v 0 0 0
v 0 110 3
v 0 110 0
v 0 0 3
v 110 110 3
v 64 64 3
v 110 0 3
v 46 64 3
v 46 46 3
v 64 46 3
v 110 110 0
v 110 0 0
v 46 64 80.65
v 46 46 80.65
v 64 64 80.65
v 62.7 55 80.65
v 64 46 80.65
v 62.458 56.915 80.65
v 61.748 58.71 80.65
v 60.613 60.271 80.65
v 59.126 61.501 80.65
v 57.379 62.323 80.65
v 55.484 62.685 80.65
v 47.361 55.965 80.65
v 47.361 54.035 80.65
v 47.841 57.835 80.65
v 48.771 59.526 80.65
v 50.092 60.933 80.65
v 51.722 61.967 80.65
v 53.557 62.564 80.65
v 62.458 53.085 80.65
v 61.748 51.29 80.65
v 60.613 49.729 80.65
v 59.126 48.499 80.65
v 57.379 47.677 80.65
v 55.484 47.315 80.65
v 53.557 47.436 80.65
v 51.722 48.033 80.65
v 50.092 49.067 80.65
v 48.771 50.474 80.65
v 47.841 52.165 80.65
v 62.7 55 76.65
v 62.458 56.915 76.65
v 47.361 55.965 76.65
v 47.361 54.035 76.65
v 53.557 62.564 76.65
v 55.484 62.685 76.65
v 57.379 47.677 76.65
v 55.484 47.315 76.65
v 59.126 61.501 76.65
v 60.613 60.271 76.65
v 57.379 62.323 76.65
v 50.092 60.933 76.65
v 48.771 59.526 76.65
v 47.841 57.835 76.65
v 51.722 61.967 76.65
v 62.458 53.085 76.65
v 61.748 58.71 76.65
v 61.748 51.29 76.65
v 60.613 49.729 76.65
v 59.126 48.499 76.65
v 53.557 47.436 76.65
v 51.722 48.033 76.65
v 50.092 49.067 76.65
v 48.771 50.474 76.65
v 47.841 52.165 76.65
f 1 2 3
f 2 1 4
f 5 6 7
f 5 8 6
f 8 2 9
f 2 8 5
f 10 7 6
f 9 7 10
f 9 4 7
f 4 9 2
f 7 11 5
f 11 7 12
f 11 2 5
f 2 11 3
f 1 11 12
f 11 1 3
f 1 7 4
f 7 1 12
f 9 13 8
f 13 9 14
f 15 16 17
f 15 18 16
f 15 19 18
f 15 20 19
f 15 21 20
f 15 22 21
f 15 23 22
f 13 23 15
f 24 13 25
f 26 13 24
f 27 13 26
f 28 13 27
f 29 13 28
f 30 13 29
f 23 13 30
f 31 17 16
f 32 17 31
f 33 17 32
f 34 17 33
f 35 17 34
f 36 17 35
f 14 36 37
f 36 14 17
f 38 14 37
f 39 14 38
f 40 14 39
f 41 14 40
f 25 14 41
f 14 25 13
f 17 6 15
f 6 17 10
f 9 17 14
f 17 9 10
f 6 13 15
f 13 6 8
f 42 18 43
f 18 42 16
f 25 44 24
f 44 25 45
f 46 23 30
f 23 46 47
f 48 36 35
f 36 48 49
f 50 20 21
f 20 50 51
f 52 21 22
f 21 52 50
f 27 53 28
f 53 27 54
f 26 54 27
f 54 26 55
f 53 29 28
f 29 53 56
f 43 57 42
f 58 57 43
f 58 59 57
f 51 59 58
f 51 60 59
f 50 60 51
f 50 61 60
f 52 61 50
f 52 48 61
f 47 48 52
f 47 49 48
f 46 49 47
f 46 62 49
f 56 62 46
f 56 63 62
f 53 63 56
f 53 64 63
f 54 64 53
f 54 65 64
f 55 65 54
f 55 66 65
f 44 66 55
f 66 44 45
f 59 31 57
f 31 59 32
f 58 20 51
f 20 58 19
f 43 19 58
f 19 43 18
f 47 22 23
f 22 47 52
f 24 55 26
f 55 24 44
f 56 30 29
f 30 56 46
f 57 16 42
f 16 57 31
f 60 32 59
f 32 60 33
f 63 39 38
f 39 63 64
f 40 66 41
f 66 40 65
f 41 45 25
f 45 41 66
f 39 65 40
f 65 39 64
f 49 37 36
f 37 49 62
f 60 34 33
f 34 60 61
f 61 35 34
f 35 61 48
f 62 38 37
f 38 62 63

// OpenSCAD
// file: SquarePileLib.scad
module LeftPile(wallThickness, totalHeight, singlePileHeight, singlePileWidth, singlePileLength, pileCount){
//    15.05 by 14.95 by 2.15
    pileHeight = (pileCount * singlePileHeight) + .5;
    openingSize = singlePileWidth * .75;
    blockerSize = (singlePileLength - openingSize) / 2;
    
    translate([wallThickness, wallThickness, totalHeight - pileHeight])
        cube([singlePileLength, singlePileWidth, pileHeight]);
    translate([-.00001, wallThickness + (blockerSize), 0])
        cube([wallThickness + openingSize, openingSize, totalHeight]);
}

module RightPile(wallThickness, totalHeight, singlePileHeight, singlePileWidth, singlePileLength, pileCount){
    translate([0, wallThickness + wallThickness + singlePileWidth, 0])
        rotate([0, 0, 180])
            LeftPile(wallThickness, totalHeight, singlePileHeight, singlePileWidth, singlePileLength, pileCount);
}

module BottomPile(wallThickness, totalHeight, singlePileHeight, singlePileWidth, singlePileLength, pileCount){
    translate([wallThickness + wallThickness + singlePileWidth, 0, 0])
        rotate([0, 0, 90])
            LeftPile(wallThickness, totalHeight, singlePileHeight, singlePileWidth, singlePileLength, pileCount);
}

module TopPile(wallThickness, totalHeight, singlePileHeight, singlePileWidth, singlePileLength, pileCount){
//    translate([
//        wallThickness + wallThickness + singlePileWidth,
//        wallThickness + wallThickness + singlePileWidth,
//        0])
        rotate([0, 0, 270])
            LeftPile(wallThickness, totalHeight, singlePileHeight, singlePileWidth, singlePileLength, pileCount);
}
// file: ColonistsBuildingsLib.scad
include<SquarePileLib.scad>
//25.82 by 32.82 by 2.15
singleBuildingPileHeight = 2.15;
singleBuildingPileWidth = 25.82 + 1.5;
singleBuildingPileLength = 32.82 + 1.5;

module LeftBuildingPile(wallThickness, totalHeight, buildingPileCount){
    LeftPile(
        wallThickness,
        totalHeight,
        singleBuildingPileHeight,
        singleBuildingPileWidth,
        singleBuildingPileLength,
        buildingPileCount);
}

module RightBuildingPile(wallThickness, totalHeight, buildingPileCount){
    RightPile(
        wallThickness,
        totalHeight,
        singleBuildingPileHeight,
        singleBuildingPileWidth,
        singleBuildingPileLength,
        buildingPileCount);
}

module BottomBuildingPile(wallThickness, totalHeight, buildingPileCount){
    BottomPile(
        wallThickness,
        totalHeight,
        singleBuildingPileHeight,
        singleBuildingPileWidth,
        singleBuildingPileLength,
        buildingPileCount);
}

module TopBuildingPile(wallThickness, totalHeight, buildingPileCount){
    TopPile(
        wallThickness,
        totalHeight,
        singleBuildingPileHeight,
        singleBuildingPileWidth,
        singleBuildingPileLength,
        buildingPileCount);
}

function buildingPileHeight(buildingPileCount) =
    (buildingPileCount * singleBuildingPileHeight) + .5;
// main file
include<ColonistsBuildingsLib.scad>

length = 110;
width = 110;

height = 3;


magnetHoleWidth = 19;
floorThickness = 3;
maxBuildingsPerStack1 = 13;
maxBuildingsPerStack2 = 10;
maxBuildingsPerStack3 = 8;
singleLayerHeight1 = buildingPileHeight(maxBuildingsPerStack1) + floorThickness;
singleLayerHeight2 = buildingPileHeight(maxBuildingsPerStack2) + floorThickness;
singleLayerHeight3 = buildingPileHeight(maxBuildingsPerStack3) + floorThickness;
pillarHeight = (singleLayerHeight1 + singleLayerHeight2 + singleLayerHeight3)+ .5 + height;
echo (pillarHeight);

//Based on magnet size:
pillarSideLength = 18;
pillarSideOffset = .5;

magnetBaseInnerDiameter = 15.4;
magnetHeight = 4.0;

spaceBetweenCircles = 2;


difference() {
union(){
    cube([length, width, height]);


//----------------------------------


            
//---------------------------------------------------------------------
    
          

//----------------------------------------
   
    translate([length/2 - ((pillarSideLength)/2), width/2 - ((pillarSideLength)/2), 0])
        cube([pillarSideLength, pillarSideLength, pillarHeight]);
        

}
    translate([length/2,  width/2, pillarHeight - magnetHeight])
        cylinder(magnetHeight, d=magnetBaseInnerDiameter);

}
